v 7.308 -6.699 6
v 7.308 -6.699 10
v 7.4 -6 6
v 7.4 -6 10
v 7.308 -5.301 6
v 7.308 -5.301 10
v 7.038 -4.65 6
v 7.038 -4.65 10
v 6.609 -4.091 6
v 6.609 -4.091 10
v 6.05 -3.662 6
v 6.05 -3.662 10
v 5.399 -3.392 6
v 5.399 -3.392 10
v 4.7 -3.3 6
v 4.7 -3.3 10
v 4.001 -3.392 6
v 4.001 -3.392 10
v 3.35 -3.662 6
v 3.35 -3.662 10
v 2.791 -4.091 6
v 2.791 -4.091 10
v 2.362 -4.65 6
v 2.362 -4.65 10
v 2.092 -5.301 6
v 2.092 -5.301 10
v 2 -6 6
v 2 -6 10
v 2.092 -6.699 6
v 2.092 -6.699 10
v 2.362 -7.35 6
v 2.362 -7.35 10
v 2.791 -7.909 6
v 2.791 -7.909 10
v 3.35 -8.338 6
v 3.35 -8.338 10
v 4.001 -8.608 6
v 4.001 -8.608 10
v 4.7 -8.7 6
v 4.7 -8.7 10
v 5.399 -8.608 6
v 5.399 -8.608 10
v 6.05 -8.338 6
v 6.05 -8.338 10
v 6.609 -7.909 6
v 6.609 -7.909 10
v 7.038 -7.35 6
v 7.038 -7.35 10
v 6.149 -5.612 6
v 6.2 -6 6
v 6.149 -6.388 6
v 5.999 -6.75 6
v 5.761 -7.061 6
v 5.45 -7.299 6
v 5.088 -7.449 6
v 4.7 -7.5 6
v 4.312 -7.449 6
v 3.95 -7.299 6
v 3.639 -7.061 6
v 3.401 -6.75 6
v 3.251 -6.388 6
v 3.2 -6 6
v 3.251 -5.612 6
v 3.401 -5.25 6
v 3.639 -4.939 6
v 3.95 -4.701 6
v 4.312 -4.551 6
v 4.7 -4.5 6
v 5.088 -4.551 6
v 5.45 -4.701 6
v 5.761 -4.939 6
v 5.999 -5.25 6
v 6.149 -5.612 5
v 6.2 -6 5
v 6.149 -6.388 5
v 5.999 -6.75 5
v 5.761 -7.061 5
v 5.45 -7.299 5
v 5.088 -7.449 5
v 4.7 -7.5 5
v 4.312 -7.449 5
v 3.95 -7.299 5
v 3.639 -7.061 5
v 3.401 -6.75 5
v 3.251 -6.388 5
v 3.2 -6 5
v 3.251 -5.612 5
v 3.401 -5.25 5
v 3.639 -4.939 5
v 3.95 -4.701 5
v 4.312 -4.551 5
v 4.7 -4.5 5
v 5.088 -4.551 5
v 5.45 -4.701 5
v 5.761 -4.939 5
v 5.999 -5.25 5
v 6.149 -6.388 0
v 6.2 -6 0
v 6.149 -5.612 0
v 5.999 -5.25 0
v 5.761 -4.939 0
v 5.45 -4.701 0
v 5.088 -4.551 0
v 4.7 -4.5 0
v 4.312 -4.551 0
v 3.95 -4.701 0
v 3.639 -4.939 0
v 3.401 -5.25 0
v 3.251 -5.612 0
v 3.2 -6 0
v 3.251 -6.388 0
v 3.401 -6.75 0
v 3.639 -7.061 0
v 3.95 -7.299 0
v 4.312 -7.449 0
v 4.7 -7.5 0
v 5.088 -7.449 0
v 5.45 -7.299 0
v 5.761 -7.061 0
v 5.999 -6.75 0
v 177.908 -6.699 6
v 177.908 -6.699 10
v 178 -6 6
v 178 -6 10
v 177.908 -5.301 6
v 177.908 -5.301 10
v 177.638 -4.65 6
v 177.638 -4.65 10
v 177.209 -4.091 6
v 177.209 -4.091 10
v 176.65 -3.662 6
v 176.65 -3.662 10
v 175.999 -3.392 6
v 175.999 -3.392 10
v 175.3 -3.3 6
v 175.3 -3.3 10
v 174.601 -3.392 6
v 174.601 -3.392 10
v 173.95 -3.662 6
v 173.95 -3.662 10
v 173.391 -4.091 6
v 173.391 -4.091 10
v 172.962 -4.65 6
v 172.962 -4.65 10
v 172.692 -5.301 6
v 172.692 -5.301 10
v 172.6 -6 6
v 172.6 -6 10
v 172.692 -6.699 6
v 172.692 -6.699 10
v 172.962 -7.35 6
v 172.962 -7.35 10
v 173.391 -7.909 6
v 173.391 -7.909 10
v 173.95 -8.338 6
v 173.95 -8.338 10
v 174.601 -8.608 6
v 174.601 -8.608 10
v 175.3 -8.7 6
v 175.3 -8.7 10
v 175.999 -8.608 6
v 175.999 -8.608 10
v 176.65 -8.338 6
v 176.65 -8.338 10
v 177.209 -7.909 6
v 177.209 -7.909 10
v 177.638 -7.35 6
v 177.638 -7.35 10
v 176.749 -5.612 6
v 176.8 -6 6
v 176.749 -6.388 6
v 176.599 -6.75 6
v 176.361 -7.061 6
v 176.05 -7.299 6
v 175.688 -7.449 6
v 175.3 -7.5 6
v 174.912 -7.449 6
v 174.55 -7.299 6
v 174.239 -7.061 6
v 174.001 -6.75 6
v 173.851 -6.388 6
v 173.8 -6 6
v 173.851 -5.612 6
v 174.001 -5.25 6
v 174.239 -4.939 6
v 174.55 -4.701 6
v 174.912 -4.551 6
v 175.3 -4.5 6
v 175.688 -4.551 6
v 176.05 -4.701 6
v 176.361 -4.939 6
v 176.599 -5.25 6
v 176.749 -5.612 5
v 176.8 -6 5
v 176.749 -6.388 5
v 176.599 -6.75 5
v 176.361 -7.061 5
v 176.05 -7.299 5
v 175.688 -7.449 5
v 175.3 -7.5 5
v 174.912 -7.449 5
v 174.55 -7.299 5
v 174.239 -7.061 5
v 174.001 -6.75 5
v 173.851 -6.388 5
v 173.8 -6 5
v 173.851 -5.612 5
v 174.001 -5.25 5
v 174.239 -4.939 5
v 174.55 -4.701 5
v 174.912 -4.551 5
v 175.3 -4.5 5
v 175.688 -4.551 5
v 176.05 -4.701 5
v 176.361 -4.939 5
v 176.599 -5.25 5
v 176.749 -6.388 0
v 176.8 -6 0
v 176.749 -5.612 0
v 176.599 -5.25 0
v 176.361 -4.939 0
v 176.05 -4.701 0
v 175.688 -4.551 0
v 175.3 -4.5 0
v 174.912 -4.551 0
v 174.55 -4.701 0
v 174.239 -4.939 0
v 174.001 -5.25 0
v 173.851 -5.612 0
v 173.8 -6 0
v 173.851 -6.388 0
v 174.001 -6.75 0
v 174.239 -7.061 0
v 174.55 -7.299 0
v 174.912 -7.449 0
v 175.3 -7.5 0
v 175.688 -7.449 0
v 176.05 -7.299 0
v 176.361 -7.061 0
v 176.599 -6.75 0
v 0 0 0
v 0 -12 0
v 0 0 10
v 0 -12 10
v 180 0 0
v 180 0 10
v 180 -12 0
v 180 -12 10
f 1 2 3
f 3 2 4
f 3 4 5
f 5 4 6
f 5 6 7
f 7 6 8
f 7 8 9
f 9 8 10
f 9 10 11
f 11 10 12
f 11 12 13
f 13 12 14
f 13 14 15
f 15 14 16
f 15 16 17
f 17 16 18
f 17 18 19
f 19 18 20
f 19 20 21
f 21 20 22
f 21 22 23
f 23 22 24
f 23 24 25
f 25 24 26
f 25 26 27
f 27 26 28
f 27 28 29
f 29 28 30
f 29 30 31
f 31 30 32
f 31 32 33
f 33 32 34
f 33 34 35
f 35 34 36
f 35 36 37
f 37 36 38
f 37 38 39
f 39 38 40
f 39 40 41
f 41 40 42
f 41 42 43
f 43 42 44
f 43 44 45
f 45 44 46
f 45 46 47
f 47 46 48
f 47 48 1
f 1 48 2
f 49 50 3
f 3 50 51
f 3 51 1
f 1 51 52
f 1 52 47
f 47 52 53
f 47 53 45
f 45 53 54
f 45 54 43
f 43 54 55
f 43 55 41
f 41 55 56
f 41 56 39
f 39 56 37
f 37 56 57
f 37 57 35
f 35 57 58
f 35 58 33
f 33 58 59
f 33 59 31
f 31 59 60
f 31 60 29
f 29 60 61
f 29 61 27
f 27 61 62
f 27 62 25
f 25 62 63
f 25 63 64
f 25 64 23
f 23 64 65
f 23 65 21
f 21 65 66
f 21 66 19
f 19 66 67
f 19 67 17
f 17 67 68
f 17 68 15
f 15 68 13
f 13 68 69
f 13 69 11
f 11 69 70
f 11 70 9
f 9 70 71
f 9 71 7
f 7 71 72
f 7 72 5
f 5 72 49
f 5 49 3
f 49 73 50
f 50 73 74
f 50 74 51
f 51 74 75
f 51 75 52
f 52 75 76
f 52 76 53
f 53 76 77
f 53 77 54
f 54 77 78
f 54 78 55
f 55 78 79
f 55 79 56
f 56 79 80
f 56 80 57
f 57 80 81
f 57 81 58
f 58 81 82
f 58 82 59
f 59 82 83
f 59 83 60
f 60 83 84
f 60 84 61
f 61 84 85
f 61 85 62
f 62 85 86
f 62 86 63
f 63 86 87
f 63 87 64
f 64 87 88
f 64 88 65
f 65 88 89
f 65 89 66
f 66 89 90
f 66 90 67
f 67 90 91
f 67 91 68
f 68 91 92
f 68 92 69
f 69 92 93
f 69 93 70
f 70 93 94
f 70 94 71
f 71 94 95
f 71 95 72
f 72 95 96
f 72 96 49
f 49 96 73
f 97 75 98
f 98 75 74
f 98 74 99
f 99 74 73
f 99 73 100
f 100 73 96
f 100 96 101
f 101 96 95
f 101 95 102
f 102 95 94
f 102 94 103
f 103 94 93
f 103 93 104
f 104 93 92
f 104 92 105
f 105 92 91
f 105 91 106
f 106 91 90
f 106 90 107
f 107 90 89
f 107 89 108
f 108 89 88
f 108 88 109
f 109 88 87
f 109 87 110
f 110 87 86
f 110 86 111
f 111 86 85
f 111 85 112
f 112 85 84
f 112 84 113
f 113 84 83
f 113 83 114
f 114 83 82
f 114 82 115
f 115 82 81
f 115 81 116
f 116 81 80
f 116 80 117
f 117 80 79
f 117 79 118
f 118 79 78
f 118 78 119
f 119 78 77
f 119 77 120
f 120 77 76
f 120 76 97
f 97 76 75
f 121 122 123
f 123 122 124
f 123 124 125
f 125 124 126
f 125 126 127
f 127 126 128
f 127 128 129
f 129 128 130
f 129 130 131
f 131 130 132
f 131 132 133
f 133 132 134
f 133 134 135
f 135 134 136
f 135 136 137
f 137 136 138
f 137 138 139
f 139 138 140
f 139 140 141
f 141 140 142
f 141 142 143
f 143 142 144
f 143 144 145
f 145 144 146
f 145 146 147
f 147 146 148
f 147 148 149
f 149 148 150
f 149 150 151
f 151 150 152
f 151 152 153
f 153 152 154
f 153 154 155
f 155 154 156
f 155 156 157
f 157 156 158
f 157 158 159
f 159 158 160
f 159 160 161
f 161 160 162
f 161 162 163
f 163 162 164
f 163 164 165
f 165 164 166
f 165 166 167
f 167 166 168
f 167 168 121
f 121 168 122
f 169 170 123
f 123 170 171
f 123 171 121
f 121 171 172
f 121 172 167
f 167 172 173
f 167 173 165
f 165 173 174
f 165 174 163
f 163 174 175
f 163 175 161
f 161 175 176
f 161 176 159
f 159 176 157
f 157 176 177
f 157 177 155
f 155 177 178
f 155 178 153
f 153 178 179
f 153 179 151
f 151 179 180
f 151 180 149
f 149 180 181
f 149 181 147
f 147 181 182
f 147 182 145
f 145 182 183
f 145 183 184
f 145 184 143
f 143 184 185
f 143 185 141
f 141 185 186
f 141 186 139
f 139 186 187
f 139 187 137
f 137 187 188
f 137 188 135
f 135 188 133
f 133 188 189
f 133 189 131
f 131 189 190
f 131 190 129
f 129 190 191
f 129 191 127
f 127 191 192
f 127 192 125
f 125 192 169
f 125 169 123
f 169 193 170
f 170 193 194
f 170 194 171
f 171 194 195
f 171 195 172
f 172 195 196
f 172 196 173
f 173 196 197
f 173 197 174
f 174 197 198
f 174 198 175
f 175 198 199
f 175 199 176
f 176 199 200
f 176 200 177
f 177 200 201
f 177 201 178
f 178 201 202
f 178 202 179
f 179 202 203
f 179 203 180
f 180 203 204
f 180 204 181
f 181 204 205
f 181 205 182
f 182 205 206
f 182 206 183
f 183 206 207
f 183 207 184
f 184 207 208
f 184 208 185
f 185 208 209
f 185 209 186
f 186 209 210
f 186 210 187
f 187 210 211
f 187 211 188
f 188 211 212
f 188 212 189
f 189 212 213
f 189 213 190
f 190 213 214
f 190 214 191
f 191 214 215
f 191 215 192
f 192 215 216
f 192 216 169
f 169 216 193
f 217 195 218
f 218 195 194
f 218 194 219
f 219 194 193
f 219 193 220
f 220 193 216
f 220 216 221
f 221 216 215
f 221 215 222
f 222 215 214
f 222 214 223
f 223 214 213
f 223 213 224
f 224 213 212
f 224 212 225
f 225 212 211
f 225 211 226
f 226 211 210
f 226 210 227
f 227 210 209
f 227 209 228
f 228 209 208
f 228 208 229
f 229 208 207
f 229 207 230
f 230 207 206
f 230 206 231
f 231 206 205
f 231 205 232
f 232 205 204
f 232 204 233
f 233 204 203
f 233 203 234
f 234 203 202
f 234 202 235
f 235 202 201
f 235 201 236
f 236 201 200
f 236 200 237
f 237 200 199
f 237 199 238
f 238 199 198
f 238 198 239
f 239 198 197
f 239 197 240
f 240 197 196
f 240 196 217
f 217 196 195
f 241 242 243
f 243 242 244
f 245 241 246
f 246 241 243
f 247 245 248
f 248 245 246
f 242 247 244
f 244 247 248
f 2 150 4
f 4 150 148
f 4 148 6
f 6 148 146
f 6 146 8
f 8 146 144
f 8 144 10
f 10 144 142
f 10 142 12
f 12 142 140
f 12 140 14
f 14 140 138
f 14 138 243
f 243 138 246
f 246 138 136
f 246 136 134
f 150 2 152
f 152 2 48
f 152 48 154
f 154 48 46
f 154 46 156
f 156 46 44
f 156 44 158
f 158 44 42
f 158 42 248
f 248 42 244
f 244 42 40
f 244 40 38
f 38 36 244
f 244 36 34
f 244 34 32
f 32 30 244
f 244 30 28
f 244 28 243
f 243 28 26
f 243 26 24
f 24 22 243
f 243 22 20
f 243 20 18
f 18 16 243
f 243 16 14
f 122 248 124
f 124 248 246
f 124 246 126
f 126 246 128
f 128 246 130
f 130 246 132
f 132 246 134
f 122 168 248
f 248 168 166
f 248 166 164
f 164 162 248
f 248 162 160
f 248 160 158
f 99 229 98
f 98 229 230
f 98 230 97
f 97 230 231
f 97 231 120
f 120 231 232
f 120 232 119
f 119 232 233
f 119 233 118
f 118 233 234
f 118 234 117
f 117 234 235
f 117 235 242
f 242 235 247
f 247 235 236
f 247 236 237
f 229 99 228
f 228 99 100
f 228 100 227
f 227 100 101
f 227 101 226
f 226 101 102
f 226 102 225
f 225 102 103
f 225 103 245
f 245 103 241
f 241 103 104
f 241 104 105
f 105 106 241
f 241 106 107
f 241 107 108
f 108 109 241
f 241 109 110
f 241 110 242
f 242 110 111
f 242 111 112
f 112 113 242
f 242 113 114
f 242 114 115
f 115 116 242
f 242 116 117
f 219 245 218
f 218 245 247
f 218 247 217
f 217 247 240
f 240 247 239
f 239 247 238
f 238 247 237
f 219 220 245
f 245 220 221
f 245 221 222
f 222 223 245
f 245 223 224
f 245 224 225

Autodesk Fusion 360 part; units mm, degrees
sketch "Sketch1" plane through (0, 0, 0) normal (0, 0, 1) x (1, 0, 0)
  line L0 (0, 0) -> (180, 0)
  line L1 (180, 0) -> (180, -12)
  line L2 (180, -12) -> (0, -12)
  line L3 (0, -12) -> (0, 0)
  dimension "d16" = 180
  dimension "d17" = 12
extrude "Extrude1" add sketch "Sketch1" along normal blind 10
sketch "Sketch6" plane through (0, 0, 10) normal (0, 0, 1) x (-1, 0, 0)
  line L0 (0, 12) -> (-180, 12)
  line L1 (-180, 12) -> (-180, 0)
  line L2 (-180, 0) -> (0, 0)
  line L3 (0, 0) -> (0, 12)
  circle A0 centre (-4.7, 6) radius 1.5
  circle A1 centre (-4.7, 6) radius 2.7
  circle A2 centre (-175.3, 6) radius 1.5
  circle A3 centre (-175.3, 6) radius 2.7
  line L4 (0, 12) -> (0, 0)
  line L5 (0, 0) -> (-180, 0)
  line L6 (-180, 0) -> (-180, 12)
  dimension "d65" = 3
  dimension "d66" = 1.2
  dimension "d67" = 3
  dimension "d68" = 1.2
  dimension "d69" = 4.7
  dimension "d70" = 6
  dimension "d71" = 4.7
  dimension "d72" = 6
extrude "Extrude9" cut sketch "Sketch6" against normal blind 100 contours A2
extrude "Extrude10" cut sketch "Sketch6" against normal blind 4 contours A3
extrude "Extrude11" cut sketch "Sketch6" against normal blind 100 contours A0
extrude "Extrude12" cut sketch "Sketch6" against normal blind 4 contours A1
equation "length = 180 mm"
equation "height = 10 mm"
equation "width = 12 mm"
equation "d16 = length"
equation "d17 = width"
equation "d18 = height"
equation "extra = 100 mm"
equation "bearing_outer_radius = 2.7 mm"
equation "bearing_width = 4 mm"
equation "bearing_big_distance = 2 mm + bearing_outer_radius"
equation "bearing_small_distance = width / 2"
equation "bearing_inner_radius = 1.5 mm"
equation "d65 = bearing_inner_radius * 2"
equation "d66 = bearing_outer_radius - bearing_inner_radius"
equation "d67 = bearing_inner_radius * 2"
equation "d68 = bearing_outer_radius - bearing_inner_radius"
equation "d69 = bearing_big_distance"
equation "d70 = bearing_small_distance"
equation "d71 = bearing_big_distance"
equation "d72 = bearing_small_distance"
equation "d73 = -extra"
equation "d75 = -bearing_width"
equation "d77 = -extra"
equation "d79 = -bearing_width"
